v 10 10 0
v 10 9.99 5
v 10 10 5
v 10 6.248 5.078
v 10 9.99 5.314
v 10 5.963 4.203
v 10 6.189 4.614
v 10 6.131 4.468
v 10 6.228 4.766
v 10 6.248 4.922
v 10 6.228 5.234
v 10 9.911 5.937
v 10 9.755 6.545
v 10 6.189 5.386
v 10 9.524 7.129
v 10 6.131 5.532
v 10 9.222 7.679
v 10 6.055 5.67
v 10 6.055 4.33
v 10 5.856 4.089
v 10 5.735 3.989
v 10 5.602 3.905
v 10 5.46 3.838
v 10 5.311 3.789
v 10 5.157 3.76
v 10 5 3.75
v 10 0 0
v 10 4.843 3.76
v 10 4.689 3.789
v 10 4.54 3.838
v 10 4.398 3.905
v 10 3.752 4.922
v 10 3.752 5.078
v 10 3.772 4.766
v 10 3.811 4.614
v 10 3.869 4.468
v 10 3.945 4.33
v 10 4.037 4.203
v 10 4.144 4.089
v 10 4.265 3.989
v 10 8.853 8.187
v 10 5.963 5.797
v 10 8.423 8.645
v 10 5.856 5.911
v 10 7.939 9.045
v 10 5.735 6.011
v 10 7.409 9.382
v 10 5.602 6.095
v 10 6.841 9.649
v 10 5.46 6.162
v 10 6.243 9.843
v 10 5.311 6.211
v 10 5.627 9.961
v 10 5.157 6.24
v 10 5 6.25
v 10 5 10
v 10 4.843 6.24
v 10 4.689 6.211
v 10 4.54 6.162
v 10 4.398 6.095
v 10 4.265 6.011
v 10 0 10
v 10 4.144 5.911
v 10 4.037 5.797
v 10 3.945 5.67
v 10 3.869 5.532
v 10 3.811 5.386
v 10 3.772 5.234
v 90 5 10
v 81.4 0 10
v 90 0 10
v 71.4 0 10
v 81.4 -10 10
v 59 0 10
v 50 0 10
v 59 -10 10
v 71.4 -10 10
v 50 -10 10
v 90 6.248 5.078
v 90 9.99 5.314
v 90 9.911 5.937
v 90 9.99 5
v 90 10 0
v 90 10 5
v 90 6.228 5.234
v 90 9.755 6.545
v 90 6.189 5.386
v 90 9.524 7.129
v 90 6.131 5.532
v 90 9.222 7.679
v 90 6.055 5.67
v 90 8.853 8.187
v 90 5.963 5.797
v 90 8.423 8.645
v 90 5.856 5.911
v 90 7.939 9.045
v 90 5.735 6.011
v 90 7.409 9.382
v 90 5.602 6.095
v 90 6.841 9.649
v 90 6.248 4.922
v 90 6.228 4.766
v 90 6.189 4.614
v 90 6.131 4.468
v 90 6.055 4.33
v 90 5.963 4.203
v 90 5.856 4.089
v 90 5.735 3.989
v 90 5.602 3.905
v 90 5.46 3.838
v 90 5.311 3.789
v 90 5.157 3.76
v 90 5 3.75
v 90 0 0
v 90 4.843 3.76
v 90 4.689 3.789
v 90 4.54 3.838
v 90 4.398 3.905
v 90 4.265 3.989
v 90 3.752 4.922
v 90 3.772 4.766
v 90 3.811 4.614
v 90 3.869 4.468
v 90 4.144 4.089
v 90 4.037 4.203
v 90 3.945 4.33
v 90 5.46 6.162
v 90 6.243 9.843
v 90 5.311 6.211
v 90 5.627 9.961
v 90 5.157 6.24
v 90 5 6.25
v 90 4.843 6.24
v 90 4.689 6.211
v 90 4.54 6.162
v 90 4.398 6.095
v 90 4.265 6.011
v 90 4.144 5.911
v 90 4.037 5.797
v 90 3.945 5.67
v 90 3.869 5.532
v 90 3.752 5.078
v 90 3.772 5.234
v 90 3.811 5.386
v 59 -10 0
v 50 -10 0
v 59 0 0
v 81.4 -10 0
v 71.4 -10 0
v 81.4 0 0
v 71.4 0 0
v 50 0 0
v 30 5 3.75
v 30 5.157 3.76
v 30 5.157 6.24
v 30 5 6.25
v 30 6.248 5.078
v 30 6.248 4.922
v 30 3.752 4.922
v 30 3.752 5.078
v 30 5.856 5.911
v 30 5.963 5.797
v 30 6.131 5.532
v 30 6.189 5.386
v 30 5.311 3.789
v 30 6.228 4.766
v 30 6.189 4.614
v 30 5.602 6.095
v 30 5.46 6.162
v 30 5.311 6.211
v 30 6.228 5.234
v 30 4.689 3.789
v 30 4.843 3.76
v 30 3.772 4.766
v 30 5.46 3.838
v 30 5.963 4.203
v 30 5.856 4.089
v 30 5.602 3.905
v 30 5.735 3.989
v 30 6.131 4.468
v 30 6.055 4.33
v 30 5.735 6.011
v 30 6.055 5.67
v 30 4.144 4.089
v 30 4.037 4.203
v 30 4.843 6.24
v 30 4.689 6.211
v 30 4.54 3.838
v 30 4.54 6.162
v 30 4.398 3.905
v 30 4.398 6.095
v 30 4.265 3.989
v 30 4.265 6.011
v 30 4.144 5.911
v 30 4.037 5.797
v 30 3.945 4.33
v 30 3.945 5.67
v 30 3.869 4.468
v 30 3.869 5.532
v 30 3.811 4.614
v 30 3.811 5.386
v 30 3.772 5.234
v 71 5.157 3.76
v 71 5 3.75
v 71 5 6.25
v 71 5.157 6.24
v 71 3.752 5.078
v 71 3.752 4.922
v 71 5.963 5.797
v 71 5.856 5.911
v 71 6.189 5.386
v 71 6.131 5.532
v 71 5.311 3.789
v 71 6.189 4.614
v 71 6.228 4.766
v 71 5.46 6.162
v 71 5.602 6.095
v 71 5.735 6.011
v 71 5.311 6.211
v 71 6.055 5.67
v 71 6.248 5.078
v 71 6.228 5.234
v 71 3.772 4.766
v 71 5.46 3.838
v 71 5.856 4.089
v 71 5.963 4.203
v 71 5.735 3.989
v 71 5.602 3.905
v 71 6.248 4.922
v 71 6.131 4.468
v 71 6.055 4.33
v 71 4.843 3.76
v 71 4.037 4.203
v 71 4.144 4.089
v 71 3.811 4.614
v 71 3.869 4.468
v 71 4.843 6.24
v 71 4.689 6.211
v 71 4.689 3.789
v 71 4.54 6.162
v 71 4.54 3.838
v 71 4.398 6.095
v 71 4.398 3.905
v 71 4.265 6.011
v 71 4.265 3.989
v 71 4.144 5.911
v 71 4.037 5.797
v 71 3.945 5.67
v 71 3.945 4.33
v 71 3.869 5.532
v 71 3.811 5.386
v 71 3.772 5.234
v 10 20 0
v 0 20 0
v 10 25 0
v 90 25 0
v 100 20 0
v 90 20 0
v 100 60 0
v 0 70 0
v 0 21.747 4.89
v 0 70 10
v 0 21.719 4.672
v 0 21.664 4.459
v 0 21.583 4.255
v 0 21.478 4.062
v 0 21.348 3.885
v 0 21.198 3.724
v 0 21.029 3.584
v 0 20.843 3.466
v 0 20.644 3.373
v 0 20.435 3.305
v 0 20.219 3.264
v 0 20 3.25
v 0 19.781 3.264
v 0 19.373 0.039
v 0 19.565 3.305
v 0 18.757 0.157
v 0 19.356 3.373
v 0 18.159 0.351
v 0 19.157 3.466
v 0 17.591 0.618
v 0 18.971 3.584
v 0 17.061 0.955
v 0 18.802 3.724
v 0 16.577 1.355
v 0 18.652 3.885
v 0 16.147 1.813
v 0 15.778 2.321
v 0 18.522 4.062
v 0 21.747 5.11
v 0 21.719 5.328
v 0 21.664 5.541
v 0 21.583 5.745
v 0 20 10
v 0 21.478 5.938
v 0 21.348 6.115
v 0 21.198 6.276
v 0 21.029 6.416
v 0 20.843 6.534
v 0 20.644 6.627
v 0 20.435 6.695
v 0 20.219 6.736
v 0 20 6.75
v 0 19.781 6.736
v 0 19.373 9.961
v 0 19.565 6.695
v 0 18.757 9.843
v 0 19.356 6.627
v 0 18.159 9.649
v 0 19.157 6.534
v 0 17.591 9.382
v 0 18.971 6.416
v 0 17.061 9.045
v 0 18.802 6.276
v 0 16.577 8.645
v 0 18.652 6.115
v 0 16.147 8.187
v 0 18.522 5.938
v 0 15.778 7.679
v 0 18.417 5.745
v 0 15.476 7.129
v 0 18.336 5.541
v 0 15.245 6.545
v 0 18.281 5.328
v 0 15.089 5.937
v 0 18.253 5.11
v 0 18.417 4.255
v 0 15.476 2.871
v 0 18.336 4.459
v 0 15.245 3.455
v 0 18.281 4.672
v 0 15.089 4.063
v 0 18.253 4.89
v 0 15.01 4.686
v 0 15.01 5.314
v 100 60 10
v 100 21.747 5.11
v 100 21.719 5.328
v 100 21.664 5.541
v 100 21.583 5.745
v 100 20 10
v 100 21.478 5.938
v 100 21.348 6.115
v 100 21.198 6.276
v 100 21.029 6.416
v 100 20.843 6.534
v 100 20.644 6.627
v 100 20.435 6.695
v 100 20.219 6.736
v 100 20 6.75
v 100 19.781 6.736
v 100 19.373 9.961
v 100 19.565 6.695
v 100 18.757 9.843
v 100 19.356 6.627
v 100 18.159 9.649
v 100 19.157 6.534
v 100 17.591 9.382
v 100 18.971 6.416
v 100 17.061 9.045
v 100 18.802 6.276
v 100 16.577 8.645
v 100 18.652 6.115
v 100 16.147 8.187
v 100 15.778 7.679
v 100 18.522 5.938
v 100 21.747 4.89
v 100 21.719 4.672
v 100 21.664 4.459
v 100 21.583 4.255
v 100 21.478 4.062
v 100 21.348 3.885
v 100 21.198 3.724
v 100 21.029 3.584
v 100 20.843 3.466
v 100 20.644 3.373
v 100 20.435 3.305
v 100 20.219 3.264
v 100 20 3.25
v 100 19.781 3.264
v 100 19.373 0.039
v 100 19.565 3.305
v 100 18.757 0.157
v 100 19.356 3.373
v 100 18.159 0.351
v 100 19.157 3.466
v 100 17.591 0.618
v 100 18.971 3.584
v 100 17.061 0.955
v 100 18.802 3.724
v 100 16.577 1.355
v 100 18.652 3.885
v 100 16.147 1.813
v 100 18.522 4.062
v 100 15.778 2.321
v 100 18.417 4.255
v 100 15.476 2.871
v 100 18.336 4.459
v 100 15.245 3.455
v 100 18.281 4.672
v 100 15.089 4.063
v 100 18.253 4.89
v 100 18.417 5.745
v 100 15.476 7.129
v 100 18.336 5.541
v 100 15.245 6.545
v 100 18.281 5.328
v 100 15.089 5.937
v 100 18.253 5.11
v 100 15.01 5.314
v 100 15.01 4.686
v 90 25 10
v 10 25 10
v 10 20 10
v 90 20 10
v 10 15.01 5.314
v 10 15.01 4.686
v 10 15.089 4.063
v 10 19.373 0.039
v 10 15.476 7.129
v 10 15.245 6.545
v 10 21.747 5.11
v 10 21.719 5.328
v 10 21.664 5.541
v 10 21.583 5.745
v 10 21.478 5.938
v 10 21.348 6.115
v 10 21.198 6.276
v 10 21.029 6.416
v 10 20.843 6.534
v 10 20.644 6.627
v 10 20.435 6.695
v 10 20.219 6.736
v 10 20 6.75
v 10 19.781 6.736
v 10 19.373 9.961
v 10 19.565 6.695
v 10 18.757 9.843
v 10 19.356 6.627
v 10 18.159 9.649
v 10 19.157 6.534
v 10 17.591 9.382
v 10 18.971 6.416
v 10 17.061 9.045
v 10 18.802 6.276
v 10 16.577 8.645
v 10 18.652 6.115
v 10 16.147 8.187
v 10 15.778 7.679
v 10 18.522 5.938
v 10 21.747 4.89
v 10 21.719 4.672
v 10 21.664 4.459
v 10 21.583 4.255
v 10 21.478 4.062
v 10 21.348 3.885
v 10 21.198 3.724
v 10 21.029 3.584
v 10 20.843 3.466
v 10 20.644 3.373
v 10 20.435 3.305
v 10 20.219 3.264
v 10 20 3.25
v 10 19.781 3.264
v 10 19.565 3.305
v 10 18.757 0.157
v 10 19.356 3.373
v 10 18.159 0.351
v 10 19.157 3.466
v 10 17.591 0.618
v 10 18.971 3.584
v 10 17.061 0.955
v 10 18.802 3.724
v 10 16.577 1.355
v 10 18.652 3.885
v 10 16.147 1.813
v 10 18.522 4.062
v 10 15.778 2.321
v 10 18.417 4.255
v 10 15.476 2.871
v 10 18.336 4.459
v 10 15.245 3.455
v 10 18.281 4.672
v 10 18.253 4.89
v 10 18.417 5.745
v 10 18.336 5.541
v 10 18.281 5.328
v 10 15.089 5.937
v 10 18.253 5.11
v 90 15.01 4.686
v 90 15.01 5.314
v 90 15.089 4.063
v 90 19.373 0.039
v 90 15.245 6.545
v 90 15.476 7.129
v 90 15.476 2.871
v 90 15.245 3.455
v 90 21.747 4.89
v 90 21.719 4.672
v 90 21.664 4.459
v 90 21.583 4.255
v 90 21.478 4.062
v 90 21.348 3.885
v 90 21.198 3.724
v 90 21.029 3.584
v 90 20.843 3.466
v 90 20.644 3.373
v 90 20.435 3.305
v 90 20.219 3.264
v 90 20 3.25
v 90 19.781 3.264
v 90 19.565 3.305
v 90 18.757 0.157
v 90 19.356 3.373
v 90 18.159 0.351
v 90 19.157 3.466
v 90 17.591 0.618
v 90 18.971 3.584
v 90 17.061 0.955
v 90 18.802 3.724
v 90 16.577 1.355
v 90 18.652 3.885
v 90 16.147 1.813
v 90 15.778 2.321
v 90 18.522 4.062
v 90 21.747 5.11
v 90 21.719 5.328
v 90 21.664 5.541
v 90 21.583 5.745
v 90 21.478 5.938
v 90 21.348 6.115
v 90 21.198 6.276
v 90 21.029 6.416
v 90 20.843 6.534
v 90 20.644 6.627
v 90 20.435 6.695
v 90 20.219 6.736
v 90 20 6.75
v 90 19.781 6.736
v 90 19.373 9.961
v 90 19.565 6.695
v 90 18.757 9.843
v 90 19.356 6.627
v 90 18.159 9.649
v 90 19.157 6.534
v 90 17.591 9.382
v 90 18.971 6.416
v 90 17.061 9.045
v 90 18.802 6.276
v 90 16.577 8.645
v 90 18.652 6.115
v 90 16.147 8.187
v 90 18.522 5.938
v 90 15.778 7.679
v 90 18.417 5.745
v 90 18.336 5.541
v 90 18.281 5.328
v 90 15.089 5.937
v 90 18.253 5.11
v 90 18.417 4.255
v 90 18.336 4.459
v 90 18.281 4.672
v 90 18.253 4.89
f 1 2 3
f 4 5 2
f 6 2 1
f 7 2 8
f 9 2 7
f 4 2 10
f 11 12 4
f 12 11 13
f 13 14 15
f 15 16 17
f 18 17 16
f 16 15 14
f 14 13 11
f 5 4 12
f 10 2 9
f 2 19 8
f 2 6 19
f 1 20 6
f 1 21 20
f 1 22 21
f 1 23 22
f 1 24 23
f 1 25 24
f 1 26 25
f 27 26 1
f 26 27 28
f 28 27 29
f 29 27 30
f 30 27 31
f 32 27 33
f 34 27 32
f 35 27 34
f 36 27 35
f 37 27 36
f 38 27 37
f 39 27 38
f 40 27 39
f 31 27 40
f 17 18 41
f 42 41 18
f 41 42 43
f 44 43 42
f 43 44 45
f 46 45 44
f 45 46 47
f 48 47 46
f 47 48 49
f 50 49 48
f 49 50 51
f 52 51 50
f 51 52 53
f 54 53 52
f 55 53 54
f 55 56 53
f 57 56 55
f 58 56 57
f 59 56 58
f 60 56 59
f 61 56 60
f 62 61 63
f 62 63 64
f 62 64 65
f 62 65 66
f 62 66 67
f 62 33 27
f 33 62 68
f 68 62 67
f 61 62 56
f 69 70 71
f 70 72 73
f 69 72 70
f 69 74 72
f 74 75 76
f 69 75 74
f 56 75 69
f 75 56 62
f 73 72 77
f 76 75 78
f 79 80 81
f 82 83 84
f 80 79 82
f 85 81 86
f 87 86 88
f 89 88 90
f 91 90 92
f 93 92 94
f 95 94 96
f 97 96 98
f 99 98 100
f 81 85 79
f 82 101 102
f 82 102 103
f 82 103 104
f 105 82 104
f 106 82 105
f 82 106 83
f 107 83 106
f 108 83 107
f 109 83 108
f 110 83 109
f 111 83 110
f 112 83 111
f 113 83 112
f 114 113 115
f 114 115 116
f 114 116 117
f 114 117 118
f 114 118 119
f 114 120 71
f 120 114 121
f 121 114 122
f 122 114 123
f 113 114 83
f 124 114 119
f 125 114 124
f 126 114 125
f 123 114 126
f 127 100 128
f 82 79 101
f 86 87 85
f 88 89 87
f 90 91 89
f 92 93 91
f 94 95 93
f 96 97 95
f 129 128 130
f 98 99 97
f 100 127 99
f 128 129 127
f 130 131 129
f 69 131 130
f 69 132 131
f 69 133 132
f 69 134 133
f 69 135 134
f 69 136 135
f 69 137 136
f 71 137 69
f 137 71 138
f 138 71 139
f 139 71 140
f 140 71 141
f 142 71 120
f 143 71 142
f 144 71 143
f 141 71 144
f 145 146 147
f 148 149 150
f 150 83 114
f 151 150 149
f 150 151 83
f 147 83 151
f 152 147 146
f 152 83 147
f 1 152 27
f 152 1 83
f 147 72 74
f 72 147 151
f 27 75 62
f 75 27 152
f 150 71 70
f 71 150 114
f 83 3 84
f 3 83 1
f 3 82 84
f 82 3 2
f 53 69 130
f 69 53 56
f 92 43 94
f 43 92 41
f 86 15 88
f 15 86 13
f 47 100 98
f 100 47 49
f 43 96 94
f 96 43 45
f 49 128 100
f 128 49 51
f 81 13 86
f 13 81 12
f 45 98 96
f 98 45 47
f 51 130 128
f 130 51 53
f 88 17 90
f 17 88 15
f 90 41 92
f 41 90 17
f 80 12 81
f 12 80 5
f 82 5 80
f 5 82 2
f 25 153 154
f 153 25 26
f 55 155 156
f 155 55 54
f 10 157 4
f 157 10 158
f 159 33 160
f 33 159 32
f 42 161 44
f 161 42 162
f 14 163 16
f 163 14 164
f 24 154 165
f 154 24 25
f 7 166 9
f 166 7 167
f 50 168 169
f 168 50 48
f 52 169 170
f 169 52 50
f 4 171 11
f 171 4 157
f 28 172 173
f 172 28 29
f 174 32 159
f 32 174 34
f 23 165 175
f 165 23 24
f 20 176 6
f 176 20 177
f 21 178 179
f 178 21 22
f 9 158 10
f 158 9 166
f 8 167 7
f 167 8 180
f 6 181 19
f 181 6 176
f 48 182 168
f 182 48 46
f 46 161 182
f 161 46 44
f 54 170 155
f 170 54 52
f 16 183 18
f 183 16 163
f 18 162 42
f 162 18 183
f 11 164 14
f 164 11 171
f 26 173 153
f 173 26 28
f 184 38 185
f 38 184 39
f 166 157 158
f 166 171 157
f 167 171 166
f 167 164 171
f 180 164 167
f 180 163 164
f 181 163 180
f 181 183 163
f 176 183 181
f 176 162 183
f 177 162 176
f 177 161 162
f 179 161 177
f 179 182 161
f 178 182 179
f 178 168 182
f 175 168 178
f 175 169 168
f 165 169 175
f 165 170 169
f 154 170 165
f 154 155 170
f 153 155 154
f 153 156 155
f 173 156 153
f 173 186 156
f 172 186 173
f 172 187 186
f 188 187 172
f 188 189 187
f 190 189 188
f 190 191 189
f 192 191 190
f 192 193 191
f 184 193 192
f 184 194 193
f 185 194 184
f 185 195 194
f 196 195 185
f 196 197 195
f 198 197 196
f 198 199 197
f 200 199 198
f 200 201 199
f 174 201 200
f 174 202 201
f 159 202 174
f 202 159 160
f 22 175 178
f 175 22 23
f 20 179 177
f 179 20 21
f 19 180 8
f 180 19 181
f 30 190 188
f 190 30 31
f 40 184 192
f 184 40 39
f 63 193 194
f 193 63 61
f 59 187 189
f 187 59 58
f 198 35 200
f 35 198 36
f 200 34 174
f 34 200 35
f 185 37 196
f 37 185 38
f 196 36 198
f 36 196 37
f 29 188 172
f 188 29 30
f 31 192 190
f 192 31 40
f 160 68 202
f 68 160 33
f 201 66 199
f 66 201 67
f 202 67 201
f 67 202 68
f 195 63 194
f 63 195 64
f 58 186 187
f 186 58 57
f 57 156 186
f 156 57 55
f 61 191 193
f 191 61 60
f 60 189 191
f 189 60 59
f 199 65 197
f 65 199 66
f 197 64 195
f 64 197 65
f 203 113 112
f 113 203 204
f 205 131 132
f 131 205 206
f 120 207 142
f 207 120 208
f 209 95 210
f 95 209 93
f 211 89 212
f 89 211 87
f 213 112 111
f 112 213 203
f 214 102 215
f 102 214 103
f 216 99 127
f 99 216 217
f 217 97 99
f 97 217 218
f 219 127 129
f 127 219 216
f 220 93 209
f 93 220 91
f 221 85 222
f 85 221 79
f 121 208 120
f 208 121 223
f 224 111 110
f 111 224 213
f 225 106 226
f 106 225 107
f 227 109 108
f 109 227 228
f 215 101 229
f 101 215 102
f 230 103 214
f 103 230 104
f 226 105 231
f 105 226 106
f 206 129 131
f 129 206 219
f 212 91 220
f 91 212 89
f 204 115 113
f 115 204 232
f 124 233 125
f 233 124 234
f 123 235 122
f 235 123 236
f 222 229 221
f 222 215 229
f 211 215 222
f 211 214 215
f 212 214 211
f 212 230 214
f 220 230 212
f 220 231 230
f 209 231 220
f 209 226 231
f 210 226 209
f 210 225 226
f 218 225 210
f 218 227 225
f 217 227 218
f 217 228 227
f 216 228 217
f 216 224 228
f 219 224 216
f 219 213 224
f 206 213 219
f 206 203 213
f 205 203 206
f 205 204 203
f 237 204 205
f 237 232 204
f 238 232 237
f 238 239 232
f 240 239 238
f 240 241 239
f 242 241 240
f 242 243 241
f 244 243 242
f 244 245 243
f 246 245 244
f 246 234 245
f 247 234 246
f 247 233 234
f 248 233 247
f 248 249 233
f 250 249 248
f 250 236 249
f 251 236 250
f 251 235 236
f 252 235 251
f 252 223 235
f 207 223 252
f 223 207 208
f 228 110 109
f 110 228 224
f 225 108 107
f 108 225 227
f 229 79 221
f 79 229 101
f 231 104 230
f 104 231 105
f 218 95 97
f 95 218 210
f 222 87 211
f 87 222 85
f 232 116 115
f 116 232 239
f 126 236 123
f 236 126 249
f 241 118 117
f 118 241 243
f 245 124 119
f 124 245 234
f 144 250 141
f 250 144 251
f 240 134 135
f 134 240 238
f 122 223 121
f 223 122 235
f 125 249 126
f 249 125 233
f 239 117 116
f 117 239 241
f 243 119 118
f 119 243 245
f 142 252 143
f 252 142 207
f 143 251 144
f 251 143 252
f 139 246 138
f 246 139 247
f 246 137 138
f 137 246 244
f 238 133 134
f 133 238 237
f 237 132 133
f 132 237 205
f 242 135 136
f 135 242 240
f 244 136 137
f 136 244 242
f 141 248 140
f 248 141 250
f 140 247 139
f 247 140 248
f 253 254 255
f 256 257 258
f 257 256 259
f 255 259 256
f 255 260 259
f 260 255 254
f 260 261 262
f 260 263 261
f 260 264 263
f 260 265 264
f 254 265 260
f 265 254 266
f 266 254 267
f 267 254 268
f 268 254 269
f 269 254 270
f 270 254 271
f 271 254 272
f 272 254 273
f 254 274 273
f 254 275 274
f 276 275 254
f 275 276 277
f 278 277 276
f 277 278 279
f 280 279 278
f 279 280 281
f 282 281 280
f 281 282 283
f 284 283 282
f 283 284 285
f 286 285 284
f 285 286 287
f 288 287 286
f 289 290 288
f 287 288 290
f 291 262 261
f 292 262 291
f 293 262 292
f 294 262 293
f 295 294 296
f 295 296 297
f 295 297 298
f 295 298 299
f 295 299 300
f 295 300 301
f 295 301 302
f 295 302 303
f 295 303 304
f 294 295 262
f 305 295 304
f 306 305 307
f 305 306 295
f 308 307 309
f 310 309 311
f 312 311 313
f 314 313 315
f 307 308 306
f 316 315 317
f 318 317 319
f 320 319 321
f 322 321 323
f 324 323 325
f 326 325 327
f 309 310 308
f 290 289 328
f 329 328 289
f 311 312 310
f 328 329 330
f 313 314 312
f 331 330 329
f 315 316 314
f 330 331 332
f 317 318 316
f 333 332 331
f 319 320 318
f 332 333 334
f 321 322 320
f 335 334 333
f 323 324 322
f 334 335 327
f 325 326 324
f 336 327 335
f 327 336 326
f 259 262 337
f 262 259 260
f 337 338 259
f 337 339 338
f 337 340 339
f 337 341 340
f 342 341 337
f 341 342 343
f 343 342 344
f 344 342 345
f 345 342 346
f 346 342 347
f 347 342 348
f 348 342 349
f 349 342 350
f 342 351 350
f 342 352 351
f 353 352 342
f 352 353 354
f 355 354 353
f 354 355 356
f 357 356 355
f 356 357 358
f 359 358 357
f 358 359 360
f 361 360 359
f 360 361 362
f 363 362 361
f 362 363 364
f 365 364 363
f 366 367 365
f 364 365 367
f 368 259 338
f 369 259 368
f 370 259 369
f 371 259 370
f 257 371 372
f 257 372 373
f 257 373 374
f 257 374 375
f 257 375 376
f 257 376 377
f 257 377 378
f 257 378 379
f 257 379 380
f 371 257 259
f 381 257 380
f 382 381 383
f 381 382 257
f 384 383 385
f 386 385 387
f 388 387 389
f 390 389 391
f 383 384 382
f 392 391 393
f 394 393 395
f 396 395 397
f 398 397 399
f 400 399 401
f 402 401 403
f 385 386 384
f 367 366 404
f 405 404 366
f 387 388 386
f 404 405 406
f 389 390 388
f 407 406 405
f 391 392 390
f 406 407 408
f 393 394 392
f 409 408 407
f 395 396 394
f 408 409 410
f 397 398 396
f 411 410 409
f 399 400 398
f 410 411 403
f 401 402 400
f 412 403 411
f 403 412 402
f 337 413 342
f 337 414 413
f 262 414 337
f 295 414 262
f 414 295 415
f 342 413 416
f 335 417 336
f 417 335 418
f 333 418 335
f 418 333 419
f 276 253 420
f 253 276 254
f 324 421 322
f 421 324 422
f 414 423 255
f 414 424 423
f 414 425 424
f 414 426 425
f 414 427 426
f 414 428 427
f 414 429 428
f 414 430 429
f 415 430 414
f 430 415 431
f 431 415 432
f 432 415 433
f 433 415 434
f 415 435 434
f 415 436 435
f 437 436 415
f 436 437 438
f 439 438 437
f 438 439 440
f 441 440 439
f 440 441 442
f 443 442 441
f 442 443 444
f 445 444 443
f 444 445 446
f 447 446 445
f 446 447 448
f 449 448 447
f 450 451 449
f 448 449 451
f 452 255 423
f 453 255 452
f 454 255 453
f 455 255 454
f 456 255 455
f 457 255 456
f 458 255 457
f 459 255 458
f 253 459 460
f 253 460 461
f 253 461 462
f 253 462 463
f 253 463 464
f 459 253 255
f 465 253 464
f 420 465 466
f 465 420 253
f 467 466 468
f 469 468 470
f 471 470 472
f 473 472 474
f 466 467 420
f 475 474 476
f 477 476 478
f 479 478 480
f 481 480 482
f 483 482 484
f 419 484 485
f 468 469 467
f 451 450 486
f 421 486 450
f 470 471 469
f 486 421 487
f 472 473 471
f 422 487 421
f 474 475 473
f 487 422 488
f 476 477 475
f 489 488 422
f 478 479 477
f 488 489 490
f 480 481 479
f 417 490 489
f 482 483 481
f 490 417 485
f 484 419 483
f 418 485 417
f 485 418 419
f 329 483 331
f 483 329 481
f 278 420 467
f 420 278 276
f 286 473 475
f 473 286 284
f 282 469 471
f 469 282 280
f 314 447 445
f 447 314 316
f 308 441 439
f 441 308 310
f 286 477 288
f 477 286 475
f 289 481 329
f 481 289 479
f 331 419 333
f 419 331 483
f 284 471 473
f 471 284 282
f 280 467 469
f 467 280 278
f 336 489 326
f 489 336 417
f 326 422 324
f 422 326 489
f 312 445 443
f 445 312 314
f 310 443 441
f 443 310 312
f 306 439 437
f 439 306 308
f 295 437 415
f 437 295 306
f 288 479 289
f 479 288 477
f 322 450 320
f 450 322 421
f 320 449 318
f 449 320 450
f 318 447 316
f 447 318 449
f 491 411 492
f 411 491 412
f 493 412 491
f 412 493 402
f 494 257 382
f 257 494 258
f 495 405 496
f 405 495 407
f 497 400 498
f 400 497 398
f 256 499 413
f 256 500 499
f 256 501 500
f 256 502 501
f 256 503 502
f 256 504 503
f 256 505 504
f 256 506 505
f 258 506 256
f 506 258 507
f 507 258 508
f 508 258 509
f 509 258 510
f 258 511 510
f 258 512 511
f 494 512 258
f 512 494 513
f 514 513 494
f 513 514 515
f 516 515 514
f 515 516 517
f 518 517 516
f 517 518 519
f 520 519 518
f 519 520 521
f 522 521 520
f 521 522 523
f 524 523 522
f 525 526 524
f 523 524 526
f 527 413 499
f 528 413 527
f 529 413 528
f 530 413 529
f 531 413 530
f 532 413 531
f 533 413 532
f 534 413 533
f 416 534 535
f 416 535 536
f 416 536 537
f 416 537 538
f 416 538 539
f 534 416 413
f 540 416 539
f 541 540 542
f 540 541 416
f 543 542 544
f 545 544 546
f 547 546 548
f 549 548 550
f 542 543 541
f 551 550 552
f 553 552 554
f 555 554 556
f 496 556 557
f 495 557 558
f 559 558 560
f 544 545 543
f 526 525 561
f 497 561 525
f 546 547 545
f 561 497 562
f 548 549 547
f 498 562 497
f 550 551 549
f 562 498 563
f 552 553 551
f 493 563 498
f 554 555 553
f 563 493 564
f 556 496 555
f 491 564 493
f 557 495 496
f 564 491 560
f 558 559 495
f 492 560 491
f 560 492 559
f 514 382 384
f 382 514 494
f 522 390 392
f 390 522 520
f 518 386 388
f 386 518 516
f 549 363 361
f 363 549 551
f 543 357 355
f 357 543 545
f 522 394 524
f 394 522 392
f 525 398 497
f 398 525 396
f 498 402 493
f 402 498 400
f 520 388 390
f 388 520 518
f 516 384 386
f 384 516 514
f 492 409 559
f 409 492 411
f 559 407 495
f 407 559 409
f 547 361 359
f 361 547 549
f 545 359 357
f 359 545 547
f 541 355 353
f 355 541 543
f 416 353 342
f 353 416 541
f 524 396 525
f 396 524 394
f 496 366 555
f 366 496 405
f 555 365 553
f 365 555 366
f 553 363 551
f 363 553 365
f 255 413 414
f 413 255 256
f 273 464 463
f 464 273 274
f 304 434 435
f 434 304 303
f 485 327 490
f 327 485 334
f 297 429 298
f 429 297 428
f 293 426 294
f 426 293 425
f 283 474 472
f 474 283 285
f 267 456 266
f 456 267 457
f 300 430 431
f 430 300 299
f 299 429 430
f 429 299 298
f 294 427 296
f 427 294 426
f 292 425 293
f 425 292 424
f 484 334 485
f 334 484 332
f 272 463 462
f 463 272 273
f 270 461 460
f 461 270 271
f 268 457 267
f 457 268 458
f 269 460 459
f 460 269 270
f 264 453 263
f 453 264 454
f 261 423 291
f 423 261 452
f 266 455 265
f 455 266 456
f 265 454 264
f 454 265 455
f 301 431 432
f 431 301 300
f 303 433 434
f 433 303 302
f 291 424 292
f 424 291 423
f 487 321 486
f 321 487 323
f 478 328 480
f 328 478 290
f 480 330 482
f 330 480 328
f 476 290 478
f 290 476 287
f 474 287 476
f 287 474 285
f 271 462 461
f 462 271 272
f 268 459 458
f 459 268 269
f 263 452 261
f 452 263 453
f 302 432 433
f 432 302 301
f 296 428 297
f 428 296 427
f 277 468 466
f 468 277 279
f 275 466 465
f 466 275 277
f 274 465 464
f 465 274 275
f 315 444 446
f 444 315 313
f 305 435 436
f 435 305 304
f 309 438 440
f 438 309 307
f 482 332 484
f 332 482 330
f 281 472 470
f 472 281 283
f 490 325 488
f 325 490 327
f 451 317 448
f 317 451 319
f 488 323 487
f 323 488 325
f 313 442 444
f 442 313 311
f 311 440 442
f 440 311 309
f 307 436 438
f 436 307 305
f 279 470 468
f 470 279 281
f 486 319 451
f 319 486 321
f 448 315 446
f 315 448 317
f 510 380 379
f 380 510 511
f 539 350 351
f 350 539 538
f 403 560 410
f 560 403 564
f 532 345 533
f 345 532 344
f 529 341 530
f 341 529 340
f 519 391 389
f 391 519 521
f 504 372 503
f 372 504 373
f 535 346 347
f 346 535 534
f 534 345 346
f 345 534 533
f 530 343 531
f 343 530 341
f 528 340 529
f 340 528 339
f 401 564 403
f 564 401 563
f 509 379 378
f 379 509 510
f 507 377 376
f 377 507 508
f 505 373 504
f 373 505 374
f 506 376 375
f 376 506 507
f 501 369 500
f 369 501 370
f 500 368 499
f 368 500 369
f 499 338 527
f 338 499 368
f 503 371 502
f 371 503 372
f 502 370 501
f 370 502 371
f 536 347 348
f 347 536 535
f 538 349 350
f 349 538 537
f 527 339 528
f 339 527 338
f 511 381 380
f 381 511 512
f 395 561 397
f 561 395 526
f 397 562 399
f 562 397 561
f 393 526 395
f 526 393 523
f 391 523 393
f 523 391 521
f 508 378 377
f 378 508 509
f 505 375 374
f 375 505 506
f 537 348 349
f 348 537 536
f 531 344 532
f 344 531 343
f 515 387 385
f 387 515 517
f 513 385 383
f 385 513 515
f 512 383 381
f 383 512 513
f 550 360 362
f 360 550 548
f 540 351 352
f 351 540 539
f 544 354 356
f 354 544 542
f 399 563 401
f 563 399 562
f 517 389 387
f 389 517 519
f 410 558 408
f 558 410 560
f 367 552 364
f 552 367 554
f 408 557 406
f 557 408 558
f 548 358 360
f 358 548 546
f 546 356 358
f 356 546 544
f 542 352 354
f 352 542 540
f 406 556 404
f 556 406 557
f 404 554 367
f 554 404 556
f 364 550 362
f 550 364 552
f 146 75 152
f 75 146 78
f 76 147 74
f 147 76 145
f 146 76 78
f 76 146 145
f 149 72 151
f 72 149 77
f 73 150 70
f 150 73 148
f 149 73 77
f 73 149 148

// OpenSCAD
offs=15;
$fn=50;
holeclear=3.5;
holethread=2.5;
thick=10;

difference()
{
union()
{
difference()
{
translate([10,0,0]) cube ([80,10,thick]);
translate([10,5,5]) cube ([80,5,5]);
}
translate([10,5,5]) rotate([0,90,0]) cylinder(h=80, d=thick);    
}
translate([10,5,5]) rotate([0,90,0]) cylinder(h=20, d=holethread);    
translate([71,5,5]) rotate([0,90,0]) cylinder(h=20, d=holethread);    

}

translate([50,-10,0]) cube ([9,10,thick]);
translate([71.4,-10,0]) cube ([10,10,thick]);


difference()
{
union()
{
linear_extrude(10) polygon(points=[[0,5+offs],[100,5+offs],[100,45+offs],[0,55+offs]]); 
translate([0,offs+5,5]) rotate([0,90,0]) cylinder(h=10, d=10);    
translate([90,offs+5,5]) rotate([0,90,0]) cylinder(h=10, d=10);    
}

translate([10,0+offs,0]) cube ([80,10,10]);
translate([0,5+offs,5]) rotate([0,90,0]) cylinder(h=20, d=holeclear);    
translate([89,5+offs,5]) rotate([0,90,0]) cylinder(h=20, d=holeclear);    
    
}
